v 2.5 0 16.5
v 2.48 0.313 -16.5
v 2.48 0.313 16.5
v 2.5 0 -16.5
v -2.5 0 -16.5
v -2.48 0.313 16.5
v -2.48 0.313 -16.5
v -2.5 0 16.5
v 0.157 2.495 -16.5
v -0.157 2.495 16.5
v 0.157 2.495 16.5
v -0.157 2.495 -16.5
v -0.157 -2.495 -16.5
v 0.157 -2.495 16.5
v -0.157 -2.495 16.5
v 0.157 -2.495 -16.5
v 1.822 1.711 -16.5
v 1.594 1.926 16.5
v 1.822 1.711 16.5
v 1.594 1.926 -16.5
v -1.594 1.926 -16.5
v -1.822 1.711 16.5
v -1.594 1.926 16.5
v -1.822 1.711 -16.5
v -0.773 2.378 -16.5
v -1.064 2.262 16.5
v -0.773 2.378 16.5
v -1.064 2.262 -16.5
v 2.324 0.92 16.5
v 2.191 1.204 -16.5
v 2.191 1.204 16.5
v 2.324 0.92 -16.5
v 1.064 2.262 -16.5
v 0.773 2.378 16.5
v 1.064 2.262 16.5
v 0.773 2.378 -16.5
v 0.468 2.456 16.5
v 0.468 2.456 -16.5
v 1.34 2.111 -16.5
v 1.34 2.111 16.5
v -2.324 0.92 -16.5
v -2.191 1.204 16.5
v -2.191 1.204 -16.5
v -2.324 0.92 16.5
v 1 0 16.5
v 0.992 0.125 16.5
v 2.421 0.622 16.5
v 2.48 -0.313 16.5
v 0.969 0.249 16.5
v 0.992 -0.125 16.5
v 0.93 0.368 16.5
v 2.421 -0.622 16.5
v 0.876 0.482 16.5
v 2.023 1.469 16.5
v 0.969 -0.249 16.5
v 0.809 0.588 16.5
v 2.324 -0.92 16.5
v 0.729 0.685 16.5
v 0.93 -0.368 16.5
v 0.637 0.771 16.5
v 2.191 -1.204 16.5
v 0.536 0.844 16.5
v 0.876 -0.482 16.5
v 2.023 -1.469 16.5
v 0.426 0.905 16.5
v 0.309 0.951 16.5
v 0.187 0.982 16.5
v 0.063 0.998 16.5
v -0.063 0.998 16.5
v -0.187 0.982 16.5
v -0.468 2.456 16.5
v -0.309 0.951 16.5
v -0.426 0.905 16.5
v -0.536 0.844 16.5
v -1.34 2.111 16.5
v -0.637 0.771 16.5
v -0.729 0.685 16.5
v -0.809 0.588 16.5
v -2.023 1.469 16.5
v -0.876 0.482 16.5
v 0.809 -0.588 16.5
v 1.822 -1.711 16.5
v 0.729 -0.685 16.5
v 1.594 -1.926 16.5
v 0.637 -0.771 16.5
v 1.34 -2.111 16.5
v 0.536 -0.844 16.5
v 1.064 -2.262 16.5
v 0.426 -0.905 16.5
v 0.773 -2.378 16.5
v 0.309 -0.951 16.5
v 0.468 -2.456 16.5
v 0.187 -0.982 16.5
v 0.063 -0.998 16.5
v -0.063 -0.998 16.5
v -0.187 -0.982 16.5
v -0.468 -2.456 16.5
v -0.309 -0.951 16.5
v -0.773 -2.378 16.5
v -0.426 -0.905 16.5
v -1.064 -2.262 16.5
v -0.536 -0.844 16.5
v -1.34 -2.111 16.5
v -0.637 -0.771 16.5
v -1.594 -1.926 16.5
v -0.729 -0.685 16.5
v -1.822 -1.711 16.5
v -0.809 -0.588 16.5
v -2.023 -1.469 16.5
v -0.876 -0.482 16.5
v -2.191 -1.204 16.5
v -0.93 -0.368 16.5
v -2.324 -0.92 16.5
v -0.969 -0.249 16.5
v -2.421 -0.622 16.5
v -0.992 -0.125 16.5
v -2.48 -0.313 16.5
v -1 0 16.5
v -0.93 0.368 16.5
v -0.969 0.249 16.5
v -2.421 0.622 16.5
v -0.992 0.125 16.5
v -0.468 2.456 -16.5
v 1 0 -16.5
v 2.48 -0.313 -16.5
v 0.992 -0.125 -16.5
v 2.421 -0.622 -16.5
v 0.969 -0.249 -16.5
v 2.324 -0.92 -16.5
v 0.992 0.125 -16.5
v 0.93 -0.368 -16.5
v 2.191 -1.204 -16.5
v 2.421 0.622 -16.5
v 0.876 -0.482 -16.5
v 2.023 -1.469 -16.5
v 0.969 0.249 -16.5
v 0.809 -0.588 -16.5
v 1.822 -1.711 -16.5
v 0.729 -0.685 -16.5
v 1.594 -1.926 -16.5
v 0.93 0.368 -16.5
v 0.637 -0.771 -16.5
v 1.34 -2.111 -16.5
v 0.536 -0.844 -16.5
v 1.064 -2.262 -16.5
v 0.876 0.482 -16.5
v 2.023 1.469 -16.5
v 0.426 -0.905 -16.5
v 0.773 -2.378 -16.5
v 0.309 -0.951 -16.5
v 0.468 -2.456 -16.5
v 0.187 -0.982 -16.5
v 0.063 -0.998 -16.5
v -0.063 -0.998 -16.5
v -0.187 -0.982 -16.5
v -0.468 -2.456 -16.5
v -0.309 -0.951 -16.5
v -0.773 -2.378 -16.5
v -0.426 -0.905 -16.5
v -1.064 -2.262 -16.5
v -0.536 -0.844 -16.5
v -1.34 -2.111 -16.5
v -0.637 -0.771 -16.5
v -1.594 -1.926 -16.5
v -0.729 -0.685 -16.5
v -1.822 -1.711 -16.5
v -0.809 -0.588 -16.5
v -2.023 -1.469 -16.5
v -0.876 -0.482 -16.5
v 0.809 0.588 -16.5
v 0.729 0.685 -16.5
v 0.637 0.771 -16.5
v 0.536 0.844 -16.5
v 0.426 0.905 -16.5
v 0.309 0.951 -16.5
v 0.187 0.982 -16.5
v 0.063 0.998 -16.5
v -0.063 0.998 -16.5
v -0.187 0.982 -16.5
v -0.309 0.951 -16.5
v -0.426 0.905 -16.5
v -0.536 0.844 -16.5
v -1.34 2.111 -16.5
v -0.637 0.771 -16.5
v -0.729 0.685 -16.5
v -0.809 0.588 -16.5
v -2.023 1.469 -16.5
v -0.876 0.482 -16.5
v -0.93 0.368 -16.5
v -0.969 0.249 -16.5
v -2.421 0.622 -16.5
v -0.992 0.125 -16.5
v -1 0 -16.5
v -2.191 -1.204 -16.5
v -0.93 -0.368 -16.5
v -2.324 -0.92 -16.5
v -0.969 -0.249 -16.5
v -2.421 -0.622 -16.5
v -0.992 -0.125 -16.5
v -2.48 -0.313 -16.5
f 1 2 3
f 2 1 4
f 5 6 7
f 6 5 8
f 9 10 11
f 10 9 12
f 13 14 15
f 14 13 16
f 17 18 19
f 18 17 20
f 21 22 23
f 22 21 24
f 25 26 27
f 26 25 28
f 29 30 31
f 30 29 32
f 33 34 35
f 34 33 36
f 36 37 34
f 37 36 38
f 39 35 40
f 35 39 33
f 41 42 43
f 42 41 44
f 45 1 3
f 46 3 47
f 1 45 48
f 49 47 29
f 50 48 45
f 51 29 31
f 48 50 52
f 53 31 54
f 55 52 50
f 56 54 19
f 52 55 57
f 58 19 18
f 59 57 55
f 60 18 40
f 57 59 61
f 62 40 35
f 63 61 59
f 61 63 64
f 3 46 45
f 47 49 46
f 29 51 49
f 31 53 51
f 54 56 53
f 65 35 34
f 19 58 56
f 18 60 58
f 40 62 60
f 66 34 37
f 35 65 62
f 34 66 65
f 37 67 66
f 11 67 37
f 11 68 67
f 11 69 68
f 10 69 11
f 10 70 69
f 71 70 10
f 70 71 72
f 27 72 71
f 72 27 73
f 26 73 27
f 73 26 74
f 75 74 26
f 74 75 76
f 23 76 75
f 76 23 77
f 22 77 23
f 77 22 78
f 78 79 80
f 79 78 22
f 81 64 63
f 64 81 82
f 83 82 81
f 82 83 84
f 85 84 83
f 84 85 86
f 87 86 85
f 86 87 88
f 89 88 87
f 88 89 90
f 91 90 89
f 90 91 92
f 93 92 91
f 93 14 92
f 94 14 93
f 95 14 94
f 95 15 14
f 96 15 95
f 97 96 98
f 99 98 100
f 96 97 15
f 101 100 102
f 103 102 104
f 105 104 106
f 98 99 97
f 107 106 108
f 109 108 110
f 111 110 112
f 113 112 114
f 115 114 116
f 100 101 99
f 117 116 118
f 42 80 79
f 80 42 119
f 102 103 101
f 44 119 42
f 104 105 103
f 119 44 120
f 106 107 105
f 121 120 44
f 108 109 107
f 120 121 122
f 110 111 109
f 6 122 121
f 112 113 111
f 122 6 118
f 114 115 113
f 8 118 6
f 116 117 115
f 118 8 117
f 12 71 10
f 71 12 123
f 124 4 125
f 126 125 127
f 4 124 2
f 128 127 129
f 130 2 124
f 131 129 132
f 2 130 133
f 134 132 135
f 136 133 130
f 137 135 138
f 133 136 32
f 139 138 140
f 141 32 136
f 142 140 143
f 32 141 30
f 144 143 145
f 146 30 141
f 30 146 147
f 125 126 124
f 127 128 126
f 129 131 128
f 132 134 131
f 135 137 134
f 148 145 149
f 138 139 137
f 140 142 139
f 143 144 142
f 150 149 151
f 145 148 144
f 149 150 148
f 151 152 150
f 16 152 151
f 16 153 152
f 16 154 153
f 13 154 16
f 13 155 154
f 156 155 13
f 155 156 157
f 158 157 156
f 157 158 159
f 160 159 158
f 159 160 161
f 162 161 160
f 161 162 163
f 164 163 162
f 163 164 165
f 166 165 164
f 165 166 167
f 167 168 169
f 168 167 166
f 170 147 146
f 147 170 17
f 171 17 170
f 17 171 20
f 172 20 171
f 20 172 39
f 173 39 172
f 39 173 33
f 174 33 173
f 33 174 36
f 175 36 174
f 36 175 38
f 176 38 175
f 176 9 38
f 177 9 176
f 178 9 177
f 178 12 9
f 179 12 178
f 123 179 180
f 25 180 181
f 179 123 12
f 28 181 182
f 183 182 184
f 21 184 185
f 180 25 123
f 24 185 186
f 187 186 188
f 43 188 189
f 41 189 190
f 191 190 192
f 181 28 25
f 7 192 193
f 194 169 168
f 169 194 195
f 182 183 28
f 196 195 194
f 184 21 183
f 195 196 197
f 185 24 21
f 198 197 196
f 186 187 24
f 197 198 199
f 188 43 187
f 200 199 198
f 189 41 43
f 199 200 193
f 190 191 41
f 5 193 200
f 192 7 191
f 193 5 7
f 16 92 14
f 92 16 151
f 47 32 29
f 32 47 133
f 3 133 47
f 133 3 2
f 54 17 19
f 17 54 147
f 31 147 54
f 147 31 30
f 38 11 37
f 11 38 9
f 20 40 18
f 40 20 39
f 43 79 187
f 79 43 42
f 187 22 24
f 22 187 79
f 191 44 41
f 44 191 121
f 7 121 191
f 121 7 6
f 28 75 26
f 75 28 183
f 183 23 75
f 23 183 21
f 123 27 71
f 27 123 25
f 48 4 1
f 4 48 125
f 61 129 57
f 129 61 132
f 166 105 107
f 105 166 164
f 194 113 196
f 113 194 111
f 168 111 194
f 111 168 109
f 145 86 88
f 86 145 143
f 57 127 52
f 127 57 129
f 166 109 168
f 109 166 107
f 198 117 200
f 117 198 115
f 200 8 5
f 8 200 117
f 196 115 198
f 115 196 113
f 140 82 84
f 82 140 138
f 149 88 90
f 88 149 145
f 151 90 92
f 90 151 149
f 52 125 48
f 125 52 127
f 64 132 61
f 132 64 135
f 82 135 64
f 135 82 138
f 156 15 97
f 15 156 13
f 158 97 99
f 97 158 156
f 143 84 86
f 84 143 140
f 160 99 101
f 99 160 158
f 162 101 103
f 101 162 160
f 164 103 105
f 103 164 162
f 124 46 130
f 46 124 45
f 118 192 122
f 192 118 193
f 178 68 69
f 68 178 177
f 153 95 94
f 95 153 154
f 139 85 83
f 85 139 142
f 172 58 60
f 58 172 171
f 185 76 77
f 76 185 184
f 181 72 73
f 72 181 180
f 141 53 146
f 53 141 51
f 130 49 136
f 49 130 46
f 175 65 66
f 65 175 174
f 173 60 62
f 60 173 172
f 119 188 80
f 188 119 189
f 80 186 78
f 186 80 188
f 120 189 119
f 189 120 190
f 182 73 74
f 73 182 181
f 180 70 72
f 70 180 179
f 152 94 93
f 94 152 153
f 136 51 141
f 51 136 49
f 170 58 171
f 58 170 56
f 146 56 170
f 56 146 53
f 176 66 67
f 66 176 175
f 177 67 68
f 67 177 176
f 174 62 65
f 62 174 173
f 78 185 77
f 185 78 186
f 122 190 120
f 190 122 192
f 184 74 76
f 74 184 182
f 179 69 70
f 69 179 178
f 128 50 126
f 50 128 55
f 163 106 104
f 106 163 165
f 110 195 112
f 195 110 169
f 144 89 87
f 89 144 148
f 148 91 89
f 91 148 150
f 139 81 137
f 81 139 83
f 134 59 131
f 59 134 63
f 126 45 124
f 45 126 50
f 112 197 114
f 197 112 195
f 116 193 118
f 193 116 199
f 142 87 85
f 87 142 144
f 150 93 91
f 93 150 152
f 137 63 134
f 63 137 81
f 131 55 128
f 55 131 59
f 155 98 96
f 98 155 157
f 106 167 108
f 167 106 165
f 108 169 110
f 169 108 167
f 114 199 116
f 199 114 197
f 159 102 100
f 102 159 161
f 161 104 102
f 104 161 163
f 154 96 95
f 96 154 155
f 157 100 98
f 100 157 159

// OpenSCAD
$fn = 50;


difference() {
	union() {
		translate(v = [0, 0, -16.5000000000]) {
			cylinder(h = 33, r = 2.5000000000);
		}
	}
	union() {
		translate(v = [0, 0, -100.0000000000]) {
			cylinder(h = 200, r = 1.0000000000);
		}
	}
}
